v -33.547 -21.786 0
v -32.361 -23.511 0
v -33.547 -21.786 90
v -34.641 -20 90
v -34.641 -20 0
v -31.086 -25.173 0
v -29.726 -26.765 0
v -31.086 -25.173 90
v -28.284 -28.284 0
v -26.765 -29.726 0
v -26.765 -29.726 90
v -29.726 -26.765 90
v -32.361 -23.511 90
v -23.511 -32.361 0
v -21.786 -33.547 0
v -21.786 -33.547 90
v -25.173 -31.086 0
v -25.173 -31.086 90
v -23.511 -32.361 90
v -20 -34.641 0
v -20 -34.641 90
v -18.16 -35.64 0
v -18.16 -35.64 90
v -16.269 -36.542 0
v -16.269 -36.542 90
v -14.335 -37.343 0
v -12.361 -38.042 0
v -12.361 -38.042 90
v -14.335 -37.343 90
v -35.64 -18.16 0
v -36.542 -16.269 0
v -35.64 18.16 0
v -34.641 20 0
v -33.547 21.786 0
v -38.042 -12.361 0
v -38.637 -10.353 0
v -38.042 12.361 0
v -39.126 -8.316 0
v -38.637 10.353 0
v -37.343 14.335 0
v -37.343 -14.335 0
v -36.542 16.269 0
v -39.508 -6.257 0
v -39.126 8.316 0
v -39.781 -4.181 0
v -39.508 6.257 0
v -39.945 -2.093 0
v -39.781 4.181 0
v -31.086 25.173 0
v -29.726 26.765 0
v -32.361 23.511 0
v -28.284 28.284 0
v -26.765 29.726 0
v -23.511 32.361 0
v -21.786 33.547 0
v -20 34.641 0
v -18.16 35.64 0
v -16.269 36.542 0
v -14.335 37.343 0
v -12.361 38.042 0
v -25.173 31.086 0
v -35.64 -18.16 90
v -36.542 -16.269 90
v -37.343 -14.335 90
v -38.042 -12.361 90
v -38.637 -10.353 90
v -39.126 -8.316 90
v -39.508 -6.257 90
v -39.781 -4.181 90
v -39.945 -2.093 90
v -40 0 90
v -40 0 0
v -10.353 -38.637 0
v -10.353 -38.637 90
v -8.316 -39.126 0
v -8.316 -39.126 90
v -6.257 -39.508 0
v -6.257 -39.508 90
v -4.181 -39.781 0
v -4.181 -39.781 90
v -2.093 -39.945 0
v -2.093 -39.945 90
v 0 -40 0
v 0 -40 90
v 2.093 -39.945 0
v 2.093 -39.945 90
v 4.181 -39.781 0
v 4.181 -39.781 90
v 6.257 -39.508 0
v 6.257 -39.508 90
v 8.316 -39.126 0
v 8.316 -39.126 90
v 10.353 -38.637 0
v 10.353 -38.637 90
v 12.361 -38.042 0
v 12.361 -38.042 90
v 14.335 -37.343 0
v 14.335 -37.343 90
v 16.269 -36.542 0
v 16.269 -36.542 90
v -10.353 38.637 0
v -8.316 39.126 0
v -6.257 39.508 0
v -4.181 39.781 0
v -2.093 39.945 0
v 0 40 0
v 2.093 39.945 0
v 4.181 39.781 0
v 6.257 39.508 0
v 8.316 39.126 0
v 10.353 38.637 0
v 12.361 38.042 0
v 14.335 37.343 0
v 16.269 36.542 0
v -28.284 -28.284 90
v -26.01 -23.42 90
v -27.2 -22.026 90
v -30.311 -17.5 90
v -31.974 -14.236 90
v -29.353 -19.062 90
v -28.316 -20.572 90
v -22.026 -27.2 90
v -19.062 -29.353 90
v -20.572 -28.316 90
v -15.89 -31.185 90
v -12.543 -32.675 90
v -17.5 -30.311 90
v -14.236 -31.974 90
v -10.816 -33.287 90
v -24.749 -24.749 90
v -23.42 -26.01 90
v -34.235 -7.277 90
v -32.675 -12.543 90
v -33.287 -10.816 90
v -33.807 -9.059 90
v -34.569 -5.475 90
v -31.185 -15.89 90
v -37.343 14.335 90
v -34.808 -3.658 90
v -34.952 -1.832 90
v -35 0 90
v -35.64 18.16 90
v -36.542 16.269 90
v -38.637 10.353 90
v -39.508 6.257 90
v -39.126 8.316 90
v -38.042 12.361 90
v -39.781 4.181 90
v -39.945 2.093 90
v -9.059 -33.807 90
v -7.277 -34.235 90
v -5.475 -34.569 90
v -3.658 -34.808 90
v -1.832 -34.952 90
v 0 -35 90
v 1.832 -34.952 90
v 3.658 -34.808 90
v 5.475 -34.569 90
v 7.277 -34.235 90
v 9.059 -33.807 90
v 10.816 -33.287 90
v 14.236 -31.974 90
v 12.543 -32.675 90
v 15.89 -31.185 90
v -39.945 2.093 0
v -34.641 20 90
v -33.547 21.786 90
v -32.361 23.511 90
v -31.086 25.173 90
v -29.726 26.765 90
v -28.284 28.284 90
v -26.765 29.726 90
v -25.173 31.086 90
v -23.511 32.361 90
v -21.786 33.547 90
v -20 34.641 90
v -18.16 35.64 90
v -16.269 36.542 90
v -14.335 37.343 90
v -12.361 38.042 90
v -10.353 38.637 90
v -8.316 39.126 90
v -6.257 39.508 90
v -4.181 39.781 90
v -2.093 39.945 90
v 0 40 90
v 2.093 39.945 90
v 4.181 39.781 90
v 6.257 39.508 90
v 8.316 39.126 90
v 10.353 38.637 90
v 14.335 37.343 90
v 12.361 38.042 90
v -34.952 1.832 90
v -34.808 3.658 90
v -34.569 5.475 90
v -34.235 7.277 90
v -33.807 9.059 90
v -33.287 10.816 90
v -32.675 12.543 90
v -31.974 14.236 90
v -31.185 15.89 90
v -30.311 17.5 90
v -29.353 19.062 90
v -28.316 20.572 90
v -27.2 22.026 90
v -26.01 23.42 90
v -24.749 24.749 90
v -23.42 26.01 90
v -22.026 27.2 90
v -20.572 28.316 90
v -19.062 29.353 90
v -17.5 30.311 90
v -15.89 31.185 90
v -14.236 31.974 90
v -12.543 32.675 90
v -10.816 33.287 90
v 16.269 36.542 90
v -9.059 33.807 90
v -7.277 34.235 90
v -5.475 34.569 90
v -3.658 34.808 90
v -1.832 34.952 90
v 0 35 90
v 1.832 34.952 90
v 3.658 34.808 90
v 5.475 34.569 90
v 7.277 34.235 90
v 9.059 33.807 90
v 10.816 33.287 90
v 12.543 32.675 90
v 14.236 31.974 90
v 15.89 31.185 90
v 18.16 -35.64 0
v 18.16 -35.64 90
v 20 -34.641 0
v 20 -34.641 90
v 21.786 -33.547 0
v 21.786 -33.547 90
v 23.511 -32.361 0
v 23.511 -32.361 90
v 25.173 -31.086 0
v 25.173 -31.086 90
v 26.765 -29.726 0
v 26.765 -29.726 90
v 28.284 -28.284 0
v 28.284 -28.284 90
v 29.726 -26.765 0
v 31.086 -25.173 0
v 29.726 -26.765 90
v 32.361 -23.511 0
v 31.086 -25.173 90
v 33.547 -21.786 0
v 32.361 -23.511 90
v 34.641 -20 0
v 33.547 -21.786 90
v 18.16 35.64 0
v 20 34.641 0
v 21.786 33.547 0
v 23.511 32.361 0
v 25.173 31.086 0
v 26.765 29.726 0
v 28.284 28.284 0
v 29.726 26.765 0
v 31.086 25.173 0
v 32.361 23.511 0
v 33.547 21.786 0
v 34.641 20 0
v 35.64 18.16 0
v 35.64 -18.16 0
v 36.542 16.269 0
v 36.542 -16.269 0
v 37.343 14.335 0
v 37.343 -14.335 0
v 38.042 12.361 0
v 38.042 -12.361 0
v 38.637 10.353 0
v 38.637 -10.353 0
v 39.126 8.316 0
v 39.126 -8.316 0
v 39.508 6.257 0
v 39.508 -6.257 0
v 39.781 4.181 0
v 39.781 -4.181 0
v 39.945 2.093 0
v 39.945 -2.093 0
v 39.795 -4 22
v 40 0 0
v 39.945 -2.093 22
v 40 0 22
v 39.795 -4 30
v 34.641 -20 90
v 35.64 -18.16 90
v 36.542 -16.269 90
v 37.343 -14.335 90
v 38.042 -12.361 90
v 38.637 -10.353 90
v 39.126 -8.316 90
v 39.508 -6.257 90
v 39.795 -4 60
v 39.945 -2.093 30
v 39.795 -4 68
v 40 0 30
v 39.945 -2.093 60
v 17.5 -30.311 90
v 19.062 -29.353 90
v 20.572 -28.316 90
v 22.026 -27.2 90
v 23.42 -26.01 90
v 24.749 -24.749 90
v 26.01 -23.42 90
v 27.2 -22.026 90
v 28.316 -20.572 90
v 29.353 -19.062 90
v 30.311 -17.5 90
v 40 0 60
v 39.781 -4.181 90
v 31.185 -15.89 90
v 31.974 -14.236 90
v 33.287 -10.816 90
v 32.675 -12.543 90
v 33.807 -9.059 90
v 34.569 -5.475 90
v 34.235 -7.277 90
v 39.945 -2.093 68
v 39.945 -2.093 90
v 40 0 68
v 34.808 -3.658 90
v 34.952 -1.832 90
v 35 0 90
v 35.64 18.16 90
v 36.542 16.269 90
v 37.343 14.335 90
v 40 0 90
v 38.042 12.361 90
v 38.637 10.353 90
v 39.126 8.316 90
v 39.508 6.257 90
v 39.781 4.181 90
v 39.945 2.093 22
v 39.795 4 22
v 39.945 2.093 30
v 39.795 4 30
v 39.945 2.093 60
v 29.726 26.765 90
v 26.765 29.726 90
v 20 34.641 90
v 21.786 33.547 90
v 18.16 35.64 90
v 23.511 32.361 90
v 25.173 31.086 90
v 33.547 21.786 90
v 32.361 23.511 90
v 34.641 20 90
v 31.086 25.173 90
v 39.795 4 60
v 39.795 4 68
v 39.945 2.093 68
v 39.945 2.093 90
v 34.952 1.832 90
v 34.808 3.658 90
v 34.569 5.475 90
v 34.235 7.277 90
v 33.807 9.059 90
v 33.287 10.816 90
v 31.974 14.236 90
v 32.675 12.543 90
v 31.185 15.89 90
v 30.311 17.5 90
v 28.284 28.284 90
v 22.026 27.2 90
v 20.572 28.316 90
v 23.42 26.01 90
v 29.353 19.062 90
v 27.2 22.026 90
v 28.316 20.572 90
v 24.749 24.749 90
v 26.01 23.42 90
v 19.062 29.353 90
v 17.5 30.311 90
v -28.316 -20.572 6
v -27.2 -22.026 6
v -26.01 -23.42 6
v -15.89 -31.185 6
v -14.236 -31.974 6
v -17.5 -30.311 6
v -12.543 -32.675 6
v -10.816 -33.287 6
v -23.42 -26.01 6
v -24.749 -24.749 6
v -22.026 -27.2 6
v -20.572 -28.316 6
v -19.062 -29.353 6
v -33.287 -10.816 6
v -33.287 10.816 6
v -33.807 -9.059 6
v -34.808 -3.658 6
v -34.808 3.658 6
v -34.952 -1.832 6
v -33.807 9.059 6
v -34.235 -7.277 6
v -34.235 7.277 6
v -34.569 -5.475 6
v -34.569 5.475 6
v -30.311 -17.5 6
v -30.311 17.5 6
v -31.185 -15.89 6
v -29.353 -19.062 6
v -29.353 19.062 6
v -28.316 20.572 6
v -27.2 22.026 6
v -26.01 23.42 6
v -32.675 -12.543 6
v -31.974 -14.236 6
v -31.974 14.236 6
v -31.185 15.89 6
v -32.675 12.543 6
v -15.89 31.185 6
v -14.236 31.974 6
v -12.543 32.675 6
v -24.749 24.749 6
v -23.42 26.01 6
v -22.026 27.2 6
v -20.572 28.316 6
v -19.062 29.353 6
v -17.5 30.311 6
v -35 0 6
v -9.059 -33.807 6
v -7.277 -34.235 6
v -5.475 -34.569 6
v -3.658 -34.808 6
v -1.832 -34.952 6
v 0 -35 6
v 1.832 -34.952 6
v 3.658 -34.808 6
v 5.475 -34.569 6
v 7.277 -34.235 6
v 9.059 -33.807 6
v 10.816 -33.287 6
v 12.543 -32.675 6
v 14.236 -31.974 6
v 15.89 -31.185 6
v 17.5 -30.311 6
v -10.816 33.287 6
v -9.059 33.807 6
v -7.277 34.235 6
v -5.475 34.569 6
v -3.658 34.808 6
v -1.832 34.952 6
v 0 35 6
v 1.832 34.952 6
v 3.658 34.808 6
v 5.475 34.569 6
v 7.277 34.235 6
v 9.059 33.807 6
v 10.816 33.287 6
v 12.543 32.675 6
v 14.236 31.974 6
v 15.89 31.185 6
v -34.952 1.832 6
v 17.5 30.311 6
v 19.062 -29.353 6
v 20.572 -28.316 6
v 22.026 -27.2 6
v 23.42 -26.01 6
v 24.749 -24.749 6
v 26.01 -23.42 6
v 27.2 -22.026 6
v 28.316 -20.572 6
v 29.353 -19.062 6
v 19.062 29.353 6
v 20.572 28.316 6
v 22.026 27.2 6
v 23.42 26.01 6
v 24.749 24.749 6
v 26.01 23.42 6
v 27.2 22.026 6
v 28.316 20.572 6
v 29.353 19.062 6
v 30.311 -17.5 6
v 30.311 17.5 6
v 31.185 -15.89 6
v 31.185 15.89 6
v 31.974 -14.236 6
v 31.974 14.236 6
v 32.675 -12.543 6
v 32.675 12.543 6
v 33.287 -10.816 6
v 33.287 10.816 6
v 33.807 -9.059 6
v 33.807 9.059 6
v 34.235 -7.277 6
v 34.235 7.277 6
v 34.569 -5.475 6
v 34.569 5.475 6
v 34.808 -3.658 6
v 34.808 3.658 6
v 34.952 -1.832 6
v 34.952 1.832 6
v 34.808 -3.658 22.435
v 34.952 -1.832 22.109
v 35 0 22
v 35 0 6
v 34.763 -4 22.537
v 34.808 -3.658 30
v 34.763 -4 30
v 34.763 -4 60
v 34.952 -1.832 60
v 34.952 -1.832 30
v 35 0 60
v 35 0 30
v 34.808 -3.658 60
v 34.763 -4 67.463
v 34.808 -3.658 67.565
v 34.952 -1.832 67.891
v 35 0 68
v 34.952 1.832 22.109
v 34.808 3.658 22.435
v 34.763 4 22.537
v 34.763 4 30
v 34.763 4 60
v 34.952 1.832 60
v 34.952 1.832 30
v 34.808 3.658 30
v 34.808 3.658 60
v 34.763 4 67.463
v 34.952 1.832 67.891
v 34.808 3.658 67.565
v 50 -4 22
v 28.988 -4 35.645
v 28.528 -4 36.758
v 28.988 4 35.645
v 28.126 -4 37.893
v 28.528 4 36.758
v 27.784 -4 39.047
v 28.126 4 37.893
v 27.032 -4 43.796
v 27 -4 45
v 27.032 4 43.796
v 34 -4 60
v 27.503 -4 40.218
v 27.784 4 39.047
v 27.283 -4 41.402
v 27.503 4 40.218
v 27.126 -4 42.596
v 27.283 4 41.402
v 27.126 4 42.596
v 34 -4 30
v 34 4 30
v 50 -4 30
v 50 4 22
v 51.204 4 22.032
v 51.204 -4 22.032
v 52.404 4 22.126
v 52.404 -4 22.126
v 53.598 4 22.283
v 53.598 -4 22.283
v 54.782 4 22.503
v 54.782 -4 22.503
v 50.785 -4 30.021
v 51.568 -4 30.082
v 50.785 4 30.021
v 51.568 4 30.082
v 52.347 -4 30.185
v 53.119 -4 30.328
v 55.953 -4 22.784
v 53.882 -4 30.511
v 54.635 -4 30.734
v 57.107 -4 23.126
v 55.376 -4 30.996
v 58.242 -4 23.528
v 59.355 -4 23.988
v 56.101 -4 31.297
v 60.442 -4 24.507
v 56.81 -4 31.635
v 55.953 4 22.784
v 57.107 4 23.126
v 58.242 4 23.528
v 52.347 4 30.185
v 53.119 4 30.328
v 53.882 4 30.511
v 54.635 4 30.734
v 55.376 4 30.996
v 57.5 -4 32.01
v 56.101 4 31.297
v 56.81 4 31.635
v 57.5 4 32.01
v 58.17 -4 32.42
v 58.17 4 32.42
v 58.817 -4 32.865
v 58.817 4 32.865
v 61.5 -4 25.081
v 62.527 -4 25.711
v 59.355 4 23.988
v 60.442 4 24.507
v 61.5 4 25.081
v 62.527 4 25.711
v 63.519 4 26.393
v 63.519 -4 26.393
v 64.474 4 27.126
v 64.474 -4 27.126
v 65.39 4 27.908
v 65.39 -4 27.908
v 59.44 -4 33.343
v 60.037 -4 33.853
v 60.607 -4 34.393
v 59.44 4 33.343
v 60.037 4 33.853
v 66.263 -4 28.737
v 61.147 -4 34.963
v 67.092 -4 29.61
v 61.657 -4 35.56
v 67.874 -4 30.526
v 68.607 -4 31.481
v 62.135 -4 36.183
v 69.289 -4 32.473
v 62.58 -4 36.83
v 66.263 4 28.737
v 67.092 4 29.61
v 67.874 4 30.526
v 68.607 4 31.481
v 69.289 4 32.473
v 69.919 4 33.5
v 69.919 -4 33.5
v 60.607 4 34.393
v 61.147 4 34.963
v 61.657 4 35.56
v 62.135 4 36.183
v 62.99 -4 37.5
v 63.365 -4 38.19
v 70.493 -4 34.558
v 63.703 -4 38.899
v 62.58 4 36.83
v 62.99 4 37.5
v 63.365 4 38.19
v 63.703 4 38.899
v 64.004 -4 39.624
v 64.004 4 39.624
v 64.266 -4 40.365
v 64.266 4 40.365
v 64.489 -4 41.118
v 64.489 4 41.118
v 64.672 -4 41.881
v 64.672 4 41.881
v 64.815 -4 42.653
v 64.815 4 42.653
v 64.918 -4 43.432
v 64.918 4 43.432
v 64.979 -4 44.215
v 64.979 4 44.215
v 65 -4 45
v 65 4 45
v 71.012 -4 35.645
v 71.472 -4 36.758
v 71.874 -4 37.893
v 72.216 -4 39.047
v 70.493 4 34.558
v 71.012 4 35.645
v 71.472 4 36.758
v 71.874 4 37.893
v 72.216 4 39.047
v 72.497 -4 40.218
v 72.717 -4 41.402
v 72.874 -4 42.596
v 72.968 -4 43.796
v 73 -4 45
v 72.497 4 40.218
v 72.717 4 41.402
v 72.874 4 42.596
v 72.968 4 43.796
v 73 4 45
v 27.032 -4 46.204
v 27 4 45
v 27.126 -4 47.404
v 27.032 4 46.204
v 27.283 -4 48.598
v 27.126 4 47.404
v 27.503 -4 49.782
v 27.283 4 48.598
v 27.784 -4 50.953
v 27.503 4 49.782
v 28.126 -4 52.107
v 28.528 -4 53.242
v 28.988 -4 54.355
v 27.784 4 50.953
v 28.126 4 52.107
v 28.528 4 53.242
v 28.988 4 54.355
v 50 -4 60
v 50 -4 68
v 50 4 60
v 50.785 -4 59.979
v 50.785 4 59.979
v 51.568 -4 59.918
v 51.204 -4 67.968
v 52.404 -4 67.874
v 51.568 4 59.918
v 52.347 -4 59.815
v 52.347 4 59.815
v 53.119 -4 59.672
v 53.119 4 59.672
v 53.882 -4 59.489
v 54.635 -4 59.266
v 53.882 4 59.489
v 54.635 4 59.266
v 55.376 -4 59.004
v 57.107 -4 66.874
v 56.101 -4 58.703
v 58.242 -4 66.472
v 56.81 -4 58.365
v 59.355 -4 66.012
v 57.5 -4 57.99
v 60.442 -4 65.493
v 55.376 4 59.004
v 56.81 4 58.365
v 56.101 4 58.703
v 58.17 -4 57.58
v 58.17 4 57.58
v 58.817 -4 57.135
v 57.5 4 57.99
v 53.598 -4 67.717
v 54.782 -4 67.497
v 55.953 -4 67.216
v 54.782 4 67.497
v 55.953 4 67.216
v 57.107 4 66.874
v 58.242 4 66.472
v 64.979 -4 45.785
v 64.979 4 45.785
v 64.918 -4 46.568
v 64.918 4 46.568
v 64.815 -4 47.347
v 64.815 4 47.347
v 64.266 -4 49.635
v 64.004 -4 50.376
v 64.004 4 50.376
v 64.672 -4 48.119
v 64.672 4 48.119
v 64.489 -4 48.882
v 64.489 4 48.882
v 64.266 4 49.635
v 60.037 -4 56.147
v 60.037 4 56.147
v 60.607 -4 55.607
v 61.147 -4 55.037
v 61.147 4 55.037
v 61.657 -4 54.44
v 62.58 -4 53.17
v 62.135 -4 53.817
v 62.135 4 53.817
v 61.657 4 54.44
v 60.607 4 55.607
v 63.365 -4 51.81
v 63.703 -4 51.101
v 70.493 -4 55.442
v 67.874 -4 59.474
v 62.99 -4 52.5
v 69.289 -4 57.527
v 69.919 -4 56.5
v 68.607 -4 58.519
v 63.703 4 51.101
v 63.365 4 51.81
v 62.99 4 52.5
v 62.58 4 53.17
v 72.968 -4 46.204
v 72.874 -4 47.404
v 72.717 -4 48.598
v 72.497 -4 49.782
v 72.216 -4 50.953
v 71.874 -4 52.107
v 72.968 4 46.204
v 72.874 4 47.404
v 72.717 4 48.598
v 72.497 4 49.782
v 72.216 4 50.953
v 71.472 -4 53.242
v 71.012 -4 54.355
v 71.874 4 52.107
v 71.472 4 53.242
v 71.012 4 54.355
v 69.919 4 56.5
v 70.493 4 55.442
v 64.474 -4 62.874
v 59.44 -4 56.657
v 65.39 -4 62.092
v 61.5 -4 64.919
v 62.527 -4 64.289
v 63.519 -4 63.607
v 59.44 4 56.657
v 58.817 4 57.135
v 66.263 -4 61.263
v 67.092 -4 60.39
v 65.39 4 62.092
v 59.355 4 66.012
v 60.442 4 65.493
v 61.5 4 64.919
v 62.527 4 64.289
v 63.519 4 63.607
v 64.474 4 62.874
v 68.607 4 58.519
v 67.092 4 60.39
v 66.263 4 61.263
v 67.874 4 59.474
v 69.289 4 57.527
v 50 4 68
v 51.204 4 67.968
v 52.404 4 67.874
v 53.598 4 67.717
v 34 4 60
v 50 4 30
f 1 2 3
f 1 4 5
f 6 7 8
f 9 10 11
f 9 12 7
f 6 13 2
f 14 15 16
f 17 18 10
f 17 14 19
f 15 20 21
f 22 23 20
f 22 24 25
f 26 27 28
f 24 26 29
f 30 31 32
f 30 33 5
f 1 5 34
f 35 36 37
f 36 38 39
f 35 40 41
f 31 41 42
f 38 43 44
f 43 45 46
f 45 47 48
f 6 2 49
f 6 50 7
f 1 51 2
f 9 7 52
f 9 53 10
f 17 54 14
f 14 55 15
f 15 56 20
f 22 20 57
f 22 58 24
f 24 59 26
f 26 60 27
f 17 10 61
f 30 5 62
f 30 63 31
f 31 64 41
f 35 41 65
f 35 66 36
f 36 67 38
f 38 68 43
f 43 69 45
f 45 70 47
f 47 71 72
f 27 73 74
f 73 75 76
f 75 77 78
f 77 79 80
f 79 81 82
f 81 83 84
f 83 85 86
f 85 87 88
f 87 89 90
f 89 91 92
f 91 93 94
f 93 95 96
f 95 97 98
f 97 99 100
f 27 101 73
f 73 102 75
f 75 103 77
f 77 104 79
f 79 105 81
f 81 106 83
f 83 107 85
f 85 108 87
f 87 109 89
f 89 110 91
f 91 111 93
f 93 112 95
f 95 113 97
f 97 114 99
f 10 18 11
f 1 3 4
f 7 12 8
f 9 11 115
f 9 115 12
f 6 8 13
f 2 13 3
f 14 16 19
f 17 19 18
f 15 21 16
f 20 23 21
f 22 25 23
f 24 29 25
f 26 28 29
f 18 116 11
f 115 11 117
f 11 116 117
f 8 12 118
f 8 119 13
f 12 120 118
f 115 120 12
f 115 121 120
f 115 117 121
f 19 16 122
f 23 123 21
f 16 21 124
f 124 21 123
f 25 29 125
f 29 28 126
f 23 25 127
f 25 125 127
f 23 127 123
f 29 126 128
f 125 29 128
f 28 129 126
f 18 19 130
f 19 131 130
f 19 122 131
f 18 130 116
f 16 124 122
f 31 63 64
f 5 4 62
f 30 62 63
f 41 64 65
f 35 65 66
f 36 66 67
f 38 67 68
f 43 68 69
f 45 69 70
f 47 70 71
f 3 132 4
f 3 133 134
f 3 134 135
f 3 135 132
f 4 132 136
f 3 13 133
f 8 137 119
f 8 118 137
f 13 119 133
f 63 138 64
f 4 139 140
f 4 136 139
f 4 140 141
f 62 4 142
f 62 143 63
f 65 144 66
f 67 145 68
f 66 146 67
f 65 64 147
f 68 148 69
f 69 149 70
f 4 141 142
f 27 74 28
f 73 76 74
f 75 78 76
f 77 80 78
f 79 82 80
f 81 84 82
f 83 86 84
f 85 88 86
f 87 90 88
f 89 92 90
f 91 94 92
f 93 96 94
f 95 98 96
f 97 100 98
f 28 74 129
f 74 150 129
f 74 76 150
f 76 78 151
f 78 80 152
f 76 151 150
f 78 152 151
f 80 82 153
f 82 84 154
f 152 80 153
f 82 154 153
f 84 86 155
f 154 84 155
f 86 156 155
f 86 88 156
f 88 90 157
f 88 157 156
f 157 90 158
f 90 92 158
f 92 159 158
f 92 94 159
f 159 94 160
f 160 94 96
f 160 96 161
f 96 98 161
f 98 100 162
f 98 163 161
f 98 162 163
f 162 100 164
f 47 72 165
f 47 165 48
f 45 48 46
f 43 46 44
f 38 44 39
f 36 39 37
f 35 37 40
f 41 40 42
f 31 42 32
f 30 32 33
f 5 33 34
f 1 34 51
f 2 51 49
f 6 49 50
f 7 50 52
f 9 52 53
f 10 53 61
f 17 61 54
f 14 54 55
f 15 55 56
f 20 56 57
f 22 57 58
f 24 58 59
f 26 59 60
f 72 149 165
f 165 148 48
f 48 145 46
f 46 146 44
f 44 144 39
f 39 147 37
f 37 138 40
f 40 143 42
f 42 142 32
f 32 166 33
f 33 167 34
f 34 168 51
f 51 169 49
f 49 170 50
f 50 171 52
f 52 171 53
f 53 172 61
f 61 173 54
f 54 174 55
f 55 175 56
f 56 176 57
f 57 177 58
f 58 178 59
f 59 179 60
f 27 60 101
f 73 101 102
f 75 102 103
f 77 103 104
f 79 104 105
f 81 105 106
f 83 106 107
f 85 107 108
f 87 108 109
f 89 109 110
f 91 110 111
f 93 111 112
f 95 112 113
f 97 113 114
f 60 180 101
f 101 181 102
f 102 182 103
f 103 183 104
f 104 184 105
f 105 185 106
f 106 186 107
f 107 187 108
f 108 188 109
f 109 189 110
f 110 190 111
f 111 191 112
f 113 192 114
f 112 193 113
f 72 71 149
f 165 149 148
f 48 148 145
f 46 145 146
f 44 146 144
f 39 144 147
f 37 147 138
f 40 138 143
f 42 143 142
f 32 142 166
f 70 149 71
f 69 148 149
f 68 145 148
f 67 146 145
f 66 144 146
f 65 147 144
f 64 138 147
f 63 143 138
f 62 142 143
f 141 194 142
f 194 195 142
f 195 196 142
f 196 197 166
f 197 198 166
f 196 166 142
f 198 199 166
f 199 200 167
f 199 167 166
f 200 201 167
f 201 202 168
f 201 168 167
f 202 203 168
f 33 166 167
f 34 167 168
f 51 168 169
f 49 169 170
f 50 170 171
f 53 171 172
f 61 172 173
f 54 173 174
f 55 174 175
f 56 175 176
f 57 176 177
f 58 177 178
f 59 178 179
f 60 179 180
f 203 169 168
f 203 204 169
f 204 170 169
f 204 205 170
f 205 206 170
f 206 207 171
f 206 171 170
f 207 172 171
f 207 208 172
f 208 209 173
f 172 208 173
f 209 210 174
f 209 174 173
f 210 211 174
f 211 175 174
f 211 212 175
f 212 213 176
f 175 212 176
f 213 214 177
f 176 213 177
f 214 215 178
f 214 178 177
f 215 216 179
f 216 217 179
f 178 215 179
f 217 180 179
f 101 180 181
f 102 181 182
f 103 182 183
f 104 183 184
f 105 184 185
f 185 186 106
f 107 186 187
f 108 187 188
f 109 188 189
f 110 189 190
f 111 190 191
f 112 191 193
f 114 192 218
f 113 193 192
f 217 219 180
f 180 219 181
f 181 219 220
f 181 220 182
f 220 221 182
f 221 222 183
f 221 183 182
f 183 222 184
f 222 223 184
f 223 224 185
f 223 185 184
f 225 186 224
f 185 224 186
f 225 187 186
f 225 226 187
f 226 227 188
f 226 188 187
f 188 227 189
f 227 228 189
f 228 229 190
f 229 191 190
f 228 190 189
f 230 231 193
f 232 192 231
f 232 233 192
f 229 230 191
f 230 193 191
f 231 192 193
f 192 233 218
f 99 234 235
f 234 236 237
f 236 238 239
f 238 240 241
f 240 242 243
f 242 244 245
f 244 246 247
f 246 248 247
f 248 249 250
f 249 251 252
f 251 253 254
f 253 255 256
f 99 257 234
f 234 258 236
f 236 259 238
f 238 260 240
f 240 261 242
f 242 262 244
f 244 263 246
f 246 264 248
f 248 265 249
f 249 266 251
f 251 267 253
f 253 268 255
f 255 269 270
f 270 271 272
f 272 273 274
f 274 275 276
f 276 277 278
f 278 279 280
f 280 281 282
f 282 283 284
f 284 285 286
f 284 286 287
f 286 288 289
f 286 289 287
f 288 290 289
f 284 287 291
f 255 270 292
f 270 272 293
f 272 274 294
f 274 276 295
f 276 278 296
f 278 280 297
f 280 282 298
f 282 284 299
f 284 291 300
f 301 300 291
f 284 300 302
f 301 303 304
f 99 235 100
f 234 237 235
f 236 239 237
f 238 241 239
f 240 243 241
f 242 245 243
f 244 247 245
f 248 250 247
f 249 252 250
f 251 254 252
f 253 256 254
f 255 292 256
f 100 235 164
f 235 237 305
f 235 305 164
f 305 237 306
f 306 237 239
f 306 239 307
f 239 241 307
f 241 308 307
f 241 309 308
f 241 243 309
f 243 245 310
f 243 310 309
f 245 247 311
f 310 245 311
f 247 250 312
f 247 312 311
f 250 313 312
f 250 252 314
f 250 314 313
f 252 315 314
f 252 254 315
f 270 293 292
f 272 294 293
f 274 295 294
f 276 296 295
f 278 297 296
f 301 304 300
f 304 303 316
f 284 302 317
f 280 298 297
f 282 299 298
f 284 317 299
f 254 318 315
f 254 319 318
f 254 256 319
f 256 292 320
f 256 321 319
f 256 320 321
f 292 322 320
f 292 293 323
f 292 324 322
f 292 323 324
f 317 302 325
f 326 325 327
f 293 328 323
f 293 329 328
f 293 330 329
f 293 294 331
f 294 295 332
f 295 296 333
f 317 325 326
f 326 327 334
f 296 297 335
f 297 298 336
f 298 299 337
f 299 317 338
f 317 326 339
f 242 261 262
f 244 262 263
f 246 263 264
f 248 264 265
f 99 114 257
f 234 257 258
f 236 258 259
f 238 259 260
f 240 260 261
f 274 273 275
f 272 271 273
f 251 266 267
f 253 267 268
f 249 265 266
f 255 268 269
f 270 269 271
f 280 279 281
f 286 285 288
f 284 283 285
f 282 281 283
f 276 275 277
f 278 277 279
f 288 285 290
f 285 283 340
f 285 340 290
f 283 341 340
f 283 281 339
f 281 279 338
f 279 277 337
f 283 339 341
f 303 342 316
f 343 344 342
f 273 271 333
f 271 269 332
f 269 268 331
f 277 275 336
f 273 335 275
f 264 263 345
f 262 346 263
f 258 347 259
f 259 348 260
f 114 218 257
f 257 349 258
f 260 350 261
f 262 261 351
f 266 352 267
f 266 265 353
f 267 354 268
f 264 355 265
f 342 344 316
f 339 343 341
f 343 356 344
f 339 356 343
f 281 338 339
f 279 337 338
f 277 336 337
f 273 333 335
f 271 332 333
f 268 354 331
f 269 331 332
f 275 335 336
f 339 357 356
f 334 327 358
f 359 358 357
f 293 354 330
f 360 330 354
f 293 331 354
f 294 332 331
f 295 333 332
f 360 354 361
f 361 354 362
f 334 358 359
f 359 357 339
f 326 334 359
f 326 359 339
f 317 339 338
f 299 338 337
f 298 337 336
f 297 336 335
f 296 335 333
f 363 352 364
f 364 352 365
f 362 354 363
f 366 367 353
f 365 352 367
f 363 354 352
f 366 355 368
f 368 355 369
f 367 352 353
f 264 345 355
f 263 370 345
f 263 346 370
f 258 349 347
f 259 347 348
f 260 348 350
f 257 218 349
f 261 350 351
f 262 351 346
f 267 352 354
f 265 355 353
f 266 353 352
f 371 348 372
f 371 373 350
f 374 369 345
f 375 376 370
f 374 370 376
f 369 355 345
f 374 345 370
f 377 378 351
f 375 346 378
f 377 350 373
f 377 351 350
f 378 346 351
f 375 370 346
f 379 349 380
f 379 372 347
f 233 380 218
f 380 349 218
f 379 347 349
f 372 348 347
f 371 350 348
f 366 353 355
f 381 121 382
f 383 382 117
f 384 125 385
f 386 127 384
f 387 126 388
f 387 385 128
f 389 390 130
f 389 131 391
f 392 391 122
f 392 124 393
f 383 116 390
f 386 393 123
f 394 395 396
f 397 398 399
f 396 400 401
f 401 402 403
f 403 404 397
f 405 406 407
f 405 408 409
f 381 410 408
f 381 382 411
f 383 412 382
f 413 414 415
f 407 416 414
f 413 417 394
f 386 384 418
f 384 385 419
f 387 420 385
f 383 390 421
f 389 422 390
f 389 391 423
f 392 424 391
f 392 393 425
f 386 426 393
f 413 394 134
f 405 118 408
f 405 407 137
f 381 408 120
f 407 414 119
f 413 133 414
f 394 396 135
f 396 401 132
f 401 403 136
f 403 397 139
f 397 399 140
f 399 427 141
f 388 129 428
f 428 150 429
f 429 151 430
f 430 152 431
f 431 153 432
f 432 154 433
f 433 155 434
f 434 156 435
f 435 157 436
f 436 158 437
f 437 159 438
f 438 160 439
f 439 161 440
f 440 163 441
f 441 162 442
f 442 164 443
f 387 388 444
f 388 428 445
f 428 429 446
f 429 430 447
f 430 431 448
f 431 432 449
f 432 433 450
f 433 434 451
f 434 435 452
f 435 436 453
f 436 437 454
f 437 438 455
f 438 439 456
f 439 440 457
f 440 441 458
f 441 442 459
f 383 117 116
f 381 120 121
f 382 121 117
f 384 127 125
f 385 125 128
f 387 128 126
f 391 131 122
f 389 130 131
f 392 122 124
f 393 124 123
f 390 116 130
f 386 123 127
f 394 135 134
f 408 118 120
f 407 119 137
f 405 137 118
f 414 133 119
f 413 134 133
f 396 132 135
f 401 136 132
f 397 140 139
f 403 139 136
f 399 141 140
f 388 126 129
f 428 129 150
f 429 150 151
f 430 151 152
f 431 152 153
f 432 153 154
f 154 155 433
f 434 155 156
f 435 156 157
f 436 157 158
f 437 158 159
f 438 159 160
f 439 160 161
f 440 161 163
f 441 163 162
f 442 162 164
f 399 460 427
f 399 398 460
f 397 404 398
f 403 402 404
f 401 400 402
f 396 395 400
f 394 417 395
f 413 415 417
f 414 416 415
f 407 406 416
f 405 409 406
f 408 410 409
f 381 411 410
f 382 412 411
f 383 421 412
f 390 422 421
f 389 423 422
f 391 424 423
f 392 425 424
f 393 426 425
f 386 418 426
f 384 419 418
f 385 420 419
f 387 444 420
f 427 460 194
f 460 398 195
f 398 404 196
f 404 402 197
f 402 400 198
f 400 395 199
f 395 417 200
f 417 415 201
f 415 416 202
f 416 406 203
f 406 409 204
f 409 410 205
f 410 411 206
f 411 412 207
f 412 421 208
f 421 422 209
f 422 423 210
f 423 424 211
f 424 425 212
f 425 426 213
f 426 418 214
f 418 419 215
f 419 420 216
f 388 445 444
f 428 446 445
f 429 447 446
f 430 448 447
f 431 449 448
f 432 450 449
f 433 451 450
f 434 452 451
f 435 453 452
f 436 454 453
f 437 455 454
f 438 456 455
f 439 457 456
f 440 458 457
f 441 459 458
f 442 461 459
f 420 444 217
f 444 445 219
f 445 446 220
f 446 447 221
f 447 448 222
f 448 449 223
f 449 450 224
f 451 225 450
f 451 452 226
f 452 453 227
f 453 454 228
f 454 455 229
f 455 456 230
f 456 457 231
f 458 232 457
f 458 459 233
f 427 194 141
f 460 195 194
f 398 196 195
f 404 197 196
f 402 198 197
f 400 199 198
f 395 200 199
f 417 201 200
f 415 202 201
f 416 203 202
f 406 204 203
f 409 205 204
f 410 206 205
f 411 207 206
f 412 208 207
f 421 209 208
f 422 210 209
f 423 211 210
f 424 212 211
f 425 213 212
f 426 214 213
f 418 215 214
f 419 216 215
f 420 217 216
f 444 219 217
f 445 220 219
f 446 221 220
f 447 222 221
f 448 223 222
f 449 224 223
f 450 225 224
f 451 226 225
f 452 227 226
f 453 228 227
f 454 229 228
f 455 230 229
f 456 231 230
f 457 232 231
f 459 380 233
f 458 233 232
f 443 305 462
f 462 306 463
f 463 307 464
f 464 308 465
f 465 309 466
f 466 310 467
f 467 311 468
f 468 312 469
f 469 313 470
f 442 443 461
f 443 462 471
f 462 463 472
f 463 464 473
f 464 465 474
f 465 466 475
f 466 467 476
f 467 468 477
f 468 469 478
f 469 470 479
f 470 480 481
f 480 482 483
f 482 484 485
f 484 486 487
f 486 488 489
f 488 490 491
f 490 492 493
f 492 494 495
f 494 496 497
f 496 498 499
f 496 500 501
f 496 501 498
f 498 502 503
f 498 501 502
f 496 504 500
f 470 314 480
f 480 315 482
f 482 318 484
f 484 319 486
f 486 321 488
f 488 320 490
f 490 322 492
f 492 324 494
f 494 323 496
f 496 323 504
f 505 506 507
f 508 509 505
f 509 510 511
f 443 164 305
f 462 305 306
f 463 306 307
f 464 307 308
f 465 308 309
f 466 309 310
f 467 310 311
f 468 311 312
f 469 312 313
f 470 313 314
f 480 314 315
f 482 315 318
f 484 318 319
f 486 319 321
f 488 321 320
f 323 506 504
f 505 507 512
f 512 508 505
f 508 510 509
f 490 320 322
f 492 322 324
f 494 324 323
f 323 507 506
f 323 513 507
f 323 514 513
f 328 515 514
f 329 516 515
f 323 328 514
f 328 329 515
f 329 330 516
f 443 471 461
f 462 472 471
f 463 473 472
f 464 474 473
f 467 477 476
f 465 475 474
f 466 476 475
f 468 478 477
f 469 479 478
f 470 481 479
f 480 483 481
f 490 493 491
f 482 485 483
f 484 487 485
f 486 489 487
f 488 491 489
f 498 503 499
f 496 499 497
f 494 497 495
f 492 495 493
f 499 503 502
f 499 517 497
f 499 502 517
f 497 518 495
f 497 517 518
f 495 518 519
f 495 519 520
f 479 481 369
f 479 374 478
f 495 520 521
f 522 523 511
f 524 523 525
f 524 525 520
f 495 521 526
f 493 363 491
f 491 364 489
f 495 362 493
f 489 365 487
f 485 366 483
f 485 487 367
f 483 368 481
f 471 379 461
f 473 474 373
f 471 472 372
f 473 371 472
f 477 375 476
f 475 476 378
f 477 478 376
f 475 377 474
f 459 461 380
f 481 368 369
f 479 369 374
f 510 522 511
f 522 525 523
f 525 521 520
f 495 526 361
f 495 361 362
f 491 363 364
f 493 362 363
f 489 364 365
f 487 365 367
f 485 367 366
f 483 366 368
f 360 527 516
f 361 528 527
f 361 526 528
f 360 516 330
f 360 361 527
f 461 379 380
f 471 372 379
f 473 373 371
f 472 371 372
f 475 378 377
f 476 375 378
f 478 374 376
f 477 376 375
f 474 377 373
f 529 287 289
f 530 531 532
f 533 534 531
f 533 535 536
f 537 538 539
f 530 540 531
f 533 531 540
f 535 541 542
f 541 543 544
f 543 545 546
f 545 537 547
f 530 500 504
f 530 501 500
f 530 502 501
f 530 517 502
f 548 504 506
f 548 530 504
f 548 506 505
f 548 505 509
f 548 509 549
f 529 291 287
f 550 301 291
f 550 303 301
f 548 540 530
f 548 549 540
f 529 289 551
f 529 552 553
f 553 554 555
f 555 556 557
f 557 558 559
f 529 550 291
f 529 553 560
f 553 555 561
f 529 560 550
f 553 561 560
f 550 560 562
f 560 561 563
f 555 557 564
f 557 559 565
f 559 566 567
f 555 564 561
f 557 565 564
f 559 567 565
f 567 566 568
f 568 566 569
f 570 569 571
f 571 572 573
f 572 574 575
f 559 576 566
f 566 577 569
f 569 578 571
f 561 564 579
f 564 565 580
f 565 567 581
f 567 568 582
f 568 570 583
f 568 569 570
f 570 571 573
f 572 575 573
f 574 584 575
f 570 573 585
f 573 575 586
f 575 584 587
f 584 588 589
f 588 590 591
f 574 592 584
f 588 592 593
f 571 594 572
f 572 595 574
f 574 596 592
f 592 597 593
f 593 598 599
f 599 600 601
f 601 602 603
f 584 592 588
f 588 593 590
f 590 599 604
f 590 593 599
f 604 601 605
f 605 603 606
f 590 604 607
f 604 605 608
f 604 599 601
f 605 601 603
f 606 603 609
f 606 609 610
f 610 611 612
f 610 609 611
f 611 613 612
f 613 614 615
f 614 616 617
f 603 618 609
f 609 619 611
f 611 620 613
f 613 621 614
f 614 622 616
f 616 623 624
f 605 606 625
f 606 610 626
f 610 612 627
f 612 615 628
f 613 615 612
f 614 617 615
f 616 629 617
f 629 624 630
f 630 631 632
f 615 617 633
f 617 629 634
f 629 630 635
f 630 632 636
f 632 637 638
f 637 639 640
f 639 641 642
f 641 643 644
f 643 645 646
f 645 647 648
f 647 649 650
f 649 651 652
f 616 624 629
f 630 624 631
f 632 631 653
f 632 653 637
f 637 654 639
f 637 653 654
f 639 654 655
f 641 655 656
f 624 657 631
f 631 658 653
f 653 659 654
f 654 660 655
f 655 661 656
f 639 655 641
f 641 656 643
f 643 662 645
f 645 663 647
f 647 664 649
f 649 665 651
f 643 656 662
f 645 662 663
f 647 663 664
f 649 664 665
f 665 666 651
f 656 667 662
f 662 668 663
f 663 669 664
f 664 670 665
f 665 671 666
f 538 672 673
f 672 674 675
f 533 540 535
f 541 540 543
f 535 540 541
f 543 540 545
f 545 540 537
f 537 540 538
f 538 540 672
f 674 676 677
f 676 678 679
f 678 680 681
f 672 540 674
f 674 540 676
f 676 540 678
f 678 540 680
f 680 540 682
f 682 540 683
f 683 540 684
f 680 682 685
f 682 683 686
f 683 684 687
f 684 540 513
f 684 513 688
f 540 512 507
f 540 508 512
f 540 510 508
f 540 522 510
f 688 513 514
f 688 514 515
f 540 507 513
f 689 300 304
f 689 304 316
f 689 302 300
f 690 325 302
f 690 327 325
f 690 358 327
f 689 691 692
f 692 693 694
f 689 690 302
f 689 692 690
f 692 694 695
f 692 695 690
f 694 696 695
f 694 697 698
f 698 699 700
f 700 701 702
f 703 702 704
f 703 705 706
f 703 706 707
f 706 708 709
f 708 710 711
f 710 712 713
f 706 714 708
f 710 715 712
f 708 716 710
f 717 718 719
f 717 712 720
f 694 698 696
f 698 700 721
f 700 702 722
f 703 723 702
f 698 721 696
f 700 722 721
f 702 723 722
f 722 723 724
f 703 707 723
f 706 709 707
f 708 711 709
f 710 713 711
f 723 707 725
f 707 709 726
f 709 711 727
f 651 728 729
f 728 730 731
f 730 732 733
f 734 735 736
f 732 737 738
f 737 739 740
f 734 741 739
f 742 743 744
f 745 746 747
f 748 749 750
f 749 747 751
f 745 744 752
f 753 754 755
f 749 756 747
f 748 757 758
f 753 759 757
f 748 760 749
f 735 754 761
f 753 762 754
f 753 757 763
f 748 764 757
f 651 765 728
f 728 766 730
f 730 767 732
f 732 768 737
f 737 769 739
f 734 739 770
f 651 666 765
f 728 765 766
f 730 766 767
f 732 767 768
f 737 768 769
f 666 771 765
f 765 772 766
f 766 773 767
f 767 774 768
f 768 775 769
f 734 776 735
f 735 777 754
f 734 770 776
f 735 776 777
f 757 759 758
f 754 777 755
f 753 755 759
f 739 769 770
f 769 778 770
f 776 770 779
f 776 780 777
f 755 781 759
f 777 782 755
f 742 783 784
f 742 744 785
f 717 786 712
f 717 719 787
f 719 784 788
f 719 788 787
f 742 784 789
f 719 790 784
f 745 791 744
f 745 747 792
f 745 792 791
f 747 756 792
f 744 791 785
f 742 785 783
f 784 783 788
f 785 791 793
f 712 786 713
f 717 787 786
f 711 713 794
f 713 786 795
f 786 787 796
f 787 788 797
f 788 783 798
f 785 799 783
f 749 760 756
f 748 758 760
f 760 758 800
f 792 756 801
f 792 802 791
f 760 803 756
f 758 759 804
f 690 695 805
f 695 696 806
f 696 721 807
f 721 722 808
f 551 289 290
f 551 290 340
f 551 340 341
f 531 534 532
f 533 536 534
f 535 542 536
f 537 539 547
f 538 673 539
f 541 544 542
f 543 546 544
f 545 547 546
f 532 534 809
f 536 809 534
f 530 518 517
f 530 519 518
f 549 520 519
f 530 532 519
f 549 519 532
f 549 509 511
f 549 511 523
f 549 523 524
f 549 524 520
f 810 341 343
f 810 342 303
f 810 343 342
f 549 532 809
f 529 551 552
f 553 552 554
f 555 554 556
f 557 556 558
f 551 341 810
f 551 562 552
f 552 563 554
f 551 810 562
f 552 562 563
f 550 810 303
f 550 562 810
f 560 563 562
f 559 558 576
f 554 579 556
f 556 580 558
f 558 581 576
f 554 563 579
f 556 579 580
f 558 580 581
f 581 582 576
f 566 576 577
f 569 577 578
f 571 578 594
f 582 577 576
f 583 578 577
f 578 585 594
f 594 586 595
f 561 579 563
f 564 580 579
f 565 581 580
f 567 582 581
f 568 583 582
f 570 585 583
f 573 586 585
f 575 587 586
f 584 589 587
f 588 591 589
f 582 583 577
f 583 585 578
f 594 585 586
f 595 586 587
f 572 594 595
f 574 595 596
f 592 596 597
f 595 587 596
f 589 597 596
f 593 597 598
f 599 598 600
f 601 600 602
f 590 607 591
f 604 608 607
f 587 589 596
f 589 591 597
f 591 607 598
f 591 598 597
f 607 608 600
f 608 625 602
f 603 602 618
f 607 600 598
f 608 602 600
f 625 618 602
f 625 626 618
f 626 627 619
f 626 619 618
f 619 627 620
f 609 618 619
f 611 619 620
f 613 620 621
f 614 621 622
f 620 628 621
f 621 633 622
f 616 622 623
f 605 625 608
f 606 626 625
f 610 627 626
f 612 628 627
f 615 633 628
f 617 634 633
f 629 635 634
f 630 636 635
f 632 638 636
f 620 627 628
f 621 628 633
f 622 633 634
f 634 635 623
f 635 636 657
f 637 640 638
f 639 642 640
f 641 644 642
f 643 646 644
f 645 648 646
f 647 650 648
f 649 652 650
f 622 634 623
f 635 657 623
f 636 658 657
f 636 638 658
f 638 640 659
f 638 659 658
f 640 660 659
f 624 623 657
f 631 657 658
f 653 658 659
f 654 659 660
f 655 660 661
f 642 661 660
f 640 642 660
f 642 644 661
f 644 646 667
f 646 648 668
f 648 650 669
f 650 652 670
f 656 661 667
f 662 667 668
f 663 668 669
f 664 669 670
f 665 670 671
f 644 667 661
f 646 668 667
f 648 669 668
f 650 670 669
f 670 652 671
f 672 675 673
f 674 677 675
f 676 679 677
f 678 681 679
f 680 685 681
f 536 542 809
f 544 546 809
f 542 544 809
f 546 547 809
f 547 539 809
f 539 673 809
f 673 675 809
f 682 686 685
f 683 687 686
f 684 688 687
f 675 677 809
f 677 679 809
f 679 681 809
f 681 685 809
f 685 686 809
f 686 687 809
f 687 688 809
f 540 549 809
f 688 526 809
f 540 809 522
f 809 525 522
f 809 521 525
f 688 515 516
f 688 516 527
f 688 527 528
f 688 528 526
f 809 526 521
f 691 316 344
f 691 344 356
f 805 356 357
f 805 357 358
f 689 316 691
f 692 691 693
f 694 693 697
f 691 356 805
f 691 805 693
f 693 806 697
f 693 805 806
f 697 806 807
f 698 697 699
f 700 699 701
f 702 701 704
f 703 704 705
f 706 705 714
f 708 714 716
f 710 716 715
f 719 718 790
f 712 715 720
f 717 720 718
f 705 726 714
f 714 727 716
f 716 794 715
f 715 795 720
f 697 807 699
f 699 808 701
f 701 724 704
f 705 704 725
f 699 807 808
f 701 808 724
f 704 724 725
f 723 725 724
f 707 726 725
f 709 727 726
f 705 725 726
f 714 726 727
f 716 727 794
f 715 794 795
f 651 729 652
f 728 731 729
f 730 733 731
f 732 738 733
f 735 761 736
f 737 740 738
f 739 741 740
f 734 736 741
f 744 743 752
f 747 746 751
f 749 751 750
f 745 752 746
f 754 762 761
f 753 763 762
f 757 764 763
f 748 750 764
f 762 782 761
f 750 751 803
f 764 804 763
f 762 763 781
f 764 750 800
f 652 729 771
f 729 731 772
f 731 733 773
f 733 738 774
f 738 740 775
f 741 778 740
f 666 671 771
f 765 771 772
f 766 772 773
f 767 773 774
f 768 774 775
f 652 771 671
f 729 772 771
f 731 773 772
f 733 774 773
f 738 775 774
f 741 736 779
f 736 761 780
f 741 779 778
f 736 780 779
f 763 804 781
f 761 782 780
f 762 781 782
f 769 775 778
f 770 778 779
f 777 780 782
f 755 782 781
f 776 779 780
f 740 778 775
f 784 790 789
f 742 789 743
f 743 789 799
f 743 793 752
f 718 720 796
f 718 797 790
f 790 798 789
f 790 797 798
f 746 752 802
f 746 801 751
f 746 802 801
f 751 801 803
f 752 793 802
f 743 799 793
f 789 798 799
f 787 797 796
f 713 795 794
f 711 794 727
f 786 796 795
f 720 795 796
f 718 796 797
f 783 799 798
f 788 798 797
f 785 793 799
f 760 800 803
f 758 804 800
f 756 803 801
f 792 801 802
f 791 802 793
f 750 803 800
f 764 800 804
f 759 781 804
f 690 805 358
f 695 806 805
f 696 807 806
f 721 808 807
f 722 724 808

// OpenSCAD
$fn = 120;

// パラメータ
outer_d  = 80;
inner_d  = 70;
height   = 90;
bottom_t = 6;

handle_h = 30;   // 取手内側の高さ
handle_w = 25;   // 取手内側の幅
handle_t = 8;    // 取手の太さ
embed    = 5;    // 本体への食い込み量

// マグ本体
module body() {
    difference() {
        cylinder(d = outer_d, h = height);
        translate([0, 0, bottom_t])
            cylinder(d = inner_d, h = height);
    }
}

// D字形 2D 断面(x=0 が本体外壁位置、+x が外側)
module handle_2d() {
    difference() {
        // 外形 D
        hull() {
            translate([-embed, -(handle_h/2 + handle_t)])
                square([0.1, handle_h + 2*handle_t]);
            translate([handle_w - handle_h/2, 0])
                circle(r = handle_h/2 + handle_t);
        }
        // 内側の空間(壁側まで貫通)
        hull() {
            translate([-embed - 1, -handle_h/2])
                square([0.1, handle_h]);
            translate([handle_w - handle_h/2, 0])
                circle(r = handle_h/2);
        }
    }
}

// 取手(+X 側、高さ中央)
module handle() {
    translate([outer_d/2, 0, height/2])
        rotate([90, 0, 0])
            linear_extrude(height = handle_t, center = true)
                handle_2d();
}

// 組み立て
union() {
    body();
    handle();
}
